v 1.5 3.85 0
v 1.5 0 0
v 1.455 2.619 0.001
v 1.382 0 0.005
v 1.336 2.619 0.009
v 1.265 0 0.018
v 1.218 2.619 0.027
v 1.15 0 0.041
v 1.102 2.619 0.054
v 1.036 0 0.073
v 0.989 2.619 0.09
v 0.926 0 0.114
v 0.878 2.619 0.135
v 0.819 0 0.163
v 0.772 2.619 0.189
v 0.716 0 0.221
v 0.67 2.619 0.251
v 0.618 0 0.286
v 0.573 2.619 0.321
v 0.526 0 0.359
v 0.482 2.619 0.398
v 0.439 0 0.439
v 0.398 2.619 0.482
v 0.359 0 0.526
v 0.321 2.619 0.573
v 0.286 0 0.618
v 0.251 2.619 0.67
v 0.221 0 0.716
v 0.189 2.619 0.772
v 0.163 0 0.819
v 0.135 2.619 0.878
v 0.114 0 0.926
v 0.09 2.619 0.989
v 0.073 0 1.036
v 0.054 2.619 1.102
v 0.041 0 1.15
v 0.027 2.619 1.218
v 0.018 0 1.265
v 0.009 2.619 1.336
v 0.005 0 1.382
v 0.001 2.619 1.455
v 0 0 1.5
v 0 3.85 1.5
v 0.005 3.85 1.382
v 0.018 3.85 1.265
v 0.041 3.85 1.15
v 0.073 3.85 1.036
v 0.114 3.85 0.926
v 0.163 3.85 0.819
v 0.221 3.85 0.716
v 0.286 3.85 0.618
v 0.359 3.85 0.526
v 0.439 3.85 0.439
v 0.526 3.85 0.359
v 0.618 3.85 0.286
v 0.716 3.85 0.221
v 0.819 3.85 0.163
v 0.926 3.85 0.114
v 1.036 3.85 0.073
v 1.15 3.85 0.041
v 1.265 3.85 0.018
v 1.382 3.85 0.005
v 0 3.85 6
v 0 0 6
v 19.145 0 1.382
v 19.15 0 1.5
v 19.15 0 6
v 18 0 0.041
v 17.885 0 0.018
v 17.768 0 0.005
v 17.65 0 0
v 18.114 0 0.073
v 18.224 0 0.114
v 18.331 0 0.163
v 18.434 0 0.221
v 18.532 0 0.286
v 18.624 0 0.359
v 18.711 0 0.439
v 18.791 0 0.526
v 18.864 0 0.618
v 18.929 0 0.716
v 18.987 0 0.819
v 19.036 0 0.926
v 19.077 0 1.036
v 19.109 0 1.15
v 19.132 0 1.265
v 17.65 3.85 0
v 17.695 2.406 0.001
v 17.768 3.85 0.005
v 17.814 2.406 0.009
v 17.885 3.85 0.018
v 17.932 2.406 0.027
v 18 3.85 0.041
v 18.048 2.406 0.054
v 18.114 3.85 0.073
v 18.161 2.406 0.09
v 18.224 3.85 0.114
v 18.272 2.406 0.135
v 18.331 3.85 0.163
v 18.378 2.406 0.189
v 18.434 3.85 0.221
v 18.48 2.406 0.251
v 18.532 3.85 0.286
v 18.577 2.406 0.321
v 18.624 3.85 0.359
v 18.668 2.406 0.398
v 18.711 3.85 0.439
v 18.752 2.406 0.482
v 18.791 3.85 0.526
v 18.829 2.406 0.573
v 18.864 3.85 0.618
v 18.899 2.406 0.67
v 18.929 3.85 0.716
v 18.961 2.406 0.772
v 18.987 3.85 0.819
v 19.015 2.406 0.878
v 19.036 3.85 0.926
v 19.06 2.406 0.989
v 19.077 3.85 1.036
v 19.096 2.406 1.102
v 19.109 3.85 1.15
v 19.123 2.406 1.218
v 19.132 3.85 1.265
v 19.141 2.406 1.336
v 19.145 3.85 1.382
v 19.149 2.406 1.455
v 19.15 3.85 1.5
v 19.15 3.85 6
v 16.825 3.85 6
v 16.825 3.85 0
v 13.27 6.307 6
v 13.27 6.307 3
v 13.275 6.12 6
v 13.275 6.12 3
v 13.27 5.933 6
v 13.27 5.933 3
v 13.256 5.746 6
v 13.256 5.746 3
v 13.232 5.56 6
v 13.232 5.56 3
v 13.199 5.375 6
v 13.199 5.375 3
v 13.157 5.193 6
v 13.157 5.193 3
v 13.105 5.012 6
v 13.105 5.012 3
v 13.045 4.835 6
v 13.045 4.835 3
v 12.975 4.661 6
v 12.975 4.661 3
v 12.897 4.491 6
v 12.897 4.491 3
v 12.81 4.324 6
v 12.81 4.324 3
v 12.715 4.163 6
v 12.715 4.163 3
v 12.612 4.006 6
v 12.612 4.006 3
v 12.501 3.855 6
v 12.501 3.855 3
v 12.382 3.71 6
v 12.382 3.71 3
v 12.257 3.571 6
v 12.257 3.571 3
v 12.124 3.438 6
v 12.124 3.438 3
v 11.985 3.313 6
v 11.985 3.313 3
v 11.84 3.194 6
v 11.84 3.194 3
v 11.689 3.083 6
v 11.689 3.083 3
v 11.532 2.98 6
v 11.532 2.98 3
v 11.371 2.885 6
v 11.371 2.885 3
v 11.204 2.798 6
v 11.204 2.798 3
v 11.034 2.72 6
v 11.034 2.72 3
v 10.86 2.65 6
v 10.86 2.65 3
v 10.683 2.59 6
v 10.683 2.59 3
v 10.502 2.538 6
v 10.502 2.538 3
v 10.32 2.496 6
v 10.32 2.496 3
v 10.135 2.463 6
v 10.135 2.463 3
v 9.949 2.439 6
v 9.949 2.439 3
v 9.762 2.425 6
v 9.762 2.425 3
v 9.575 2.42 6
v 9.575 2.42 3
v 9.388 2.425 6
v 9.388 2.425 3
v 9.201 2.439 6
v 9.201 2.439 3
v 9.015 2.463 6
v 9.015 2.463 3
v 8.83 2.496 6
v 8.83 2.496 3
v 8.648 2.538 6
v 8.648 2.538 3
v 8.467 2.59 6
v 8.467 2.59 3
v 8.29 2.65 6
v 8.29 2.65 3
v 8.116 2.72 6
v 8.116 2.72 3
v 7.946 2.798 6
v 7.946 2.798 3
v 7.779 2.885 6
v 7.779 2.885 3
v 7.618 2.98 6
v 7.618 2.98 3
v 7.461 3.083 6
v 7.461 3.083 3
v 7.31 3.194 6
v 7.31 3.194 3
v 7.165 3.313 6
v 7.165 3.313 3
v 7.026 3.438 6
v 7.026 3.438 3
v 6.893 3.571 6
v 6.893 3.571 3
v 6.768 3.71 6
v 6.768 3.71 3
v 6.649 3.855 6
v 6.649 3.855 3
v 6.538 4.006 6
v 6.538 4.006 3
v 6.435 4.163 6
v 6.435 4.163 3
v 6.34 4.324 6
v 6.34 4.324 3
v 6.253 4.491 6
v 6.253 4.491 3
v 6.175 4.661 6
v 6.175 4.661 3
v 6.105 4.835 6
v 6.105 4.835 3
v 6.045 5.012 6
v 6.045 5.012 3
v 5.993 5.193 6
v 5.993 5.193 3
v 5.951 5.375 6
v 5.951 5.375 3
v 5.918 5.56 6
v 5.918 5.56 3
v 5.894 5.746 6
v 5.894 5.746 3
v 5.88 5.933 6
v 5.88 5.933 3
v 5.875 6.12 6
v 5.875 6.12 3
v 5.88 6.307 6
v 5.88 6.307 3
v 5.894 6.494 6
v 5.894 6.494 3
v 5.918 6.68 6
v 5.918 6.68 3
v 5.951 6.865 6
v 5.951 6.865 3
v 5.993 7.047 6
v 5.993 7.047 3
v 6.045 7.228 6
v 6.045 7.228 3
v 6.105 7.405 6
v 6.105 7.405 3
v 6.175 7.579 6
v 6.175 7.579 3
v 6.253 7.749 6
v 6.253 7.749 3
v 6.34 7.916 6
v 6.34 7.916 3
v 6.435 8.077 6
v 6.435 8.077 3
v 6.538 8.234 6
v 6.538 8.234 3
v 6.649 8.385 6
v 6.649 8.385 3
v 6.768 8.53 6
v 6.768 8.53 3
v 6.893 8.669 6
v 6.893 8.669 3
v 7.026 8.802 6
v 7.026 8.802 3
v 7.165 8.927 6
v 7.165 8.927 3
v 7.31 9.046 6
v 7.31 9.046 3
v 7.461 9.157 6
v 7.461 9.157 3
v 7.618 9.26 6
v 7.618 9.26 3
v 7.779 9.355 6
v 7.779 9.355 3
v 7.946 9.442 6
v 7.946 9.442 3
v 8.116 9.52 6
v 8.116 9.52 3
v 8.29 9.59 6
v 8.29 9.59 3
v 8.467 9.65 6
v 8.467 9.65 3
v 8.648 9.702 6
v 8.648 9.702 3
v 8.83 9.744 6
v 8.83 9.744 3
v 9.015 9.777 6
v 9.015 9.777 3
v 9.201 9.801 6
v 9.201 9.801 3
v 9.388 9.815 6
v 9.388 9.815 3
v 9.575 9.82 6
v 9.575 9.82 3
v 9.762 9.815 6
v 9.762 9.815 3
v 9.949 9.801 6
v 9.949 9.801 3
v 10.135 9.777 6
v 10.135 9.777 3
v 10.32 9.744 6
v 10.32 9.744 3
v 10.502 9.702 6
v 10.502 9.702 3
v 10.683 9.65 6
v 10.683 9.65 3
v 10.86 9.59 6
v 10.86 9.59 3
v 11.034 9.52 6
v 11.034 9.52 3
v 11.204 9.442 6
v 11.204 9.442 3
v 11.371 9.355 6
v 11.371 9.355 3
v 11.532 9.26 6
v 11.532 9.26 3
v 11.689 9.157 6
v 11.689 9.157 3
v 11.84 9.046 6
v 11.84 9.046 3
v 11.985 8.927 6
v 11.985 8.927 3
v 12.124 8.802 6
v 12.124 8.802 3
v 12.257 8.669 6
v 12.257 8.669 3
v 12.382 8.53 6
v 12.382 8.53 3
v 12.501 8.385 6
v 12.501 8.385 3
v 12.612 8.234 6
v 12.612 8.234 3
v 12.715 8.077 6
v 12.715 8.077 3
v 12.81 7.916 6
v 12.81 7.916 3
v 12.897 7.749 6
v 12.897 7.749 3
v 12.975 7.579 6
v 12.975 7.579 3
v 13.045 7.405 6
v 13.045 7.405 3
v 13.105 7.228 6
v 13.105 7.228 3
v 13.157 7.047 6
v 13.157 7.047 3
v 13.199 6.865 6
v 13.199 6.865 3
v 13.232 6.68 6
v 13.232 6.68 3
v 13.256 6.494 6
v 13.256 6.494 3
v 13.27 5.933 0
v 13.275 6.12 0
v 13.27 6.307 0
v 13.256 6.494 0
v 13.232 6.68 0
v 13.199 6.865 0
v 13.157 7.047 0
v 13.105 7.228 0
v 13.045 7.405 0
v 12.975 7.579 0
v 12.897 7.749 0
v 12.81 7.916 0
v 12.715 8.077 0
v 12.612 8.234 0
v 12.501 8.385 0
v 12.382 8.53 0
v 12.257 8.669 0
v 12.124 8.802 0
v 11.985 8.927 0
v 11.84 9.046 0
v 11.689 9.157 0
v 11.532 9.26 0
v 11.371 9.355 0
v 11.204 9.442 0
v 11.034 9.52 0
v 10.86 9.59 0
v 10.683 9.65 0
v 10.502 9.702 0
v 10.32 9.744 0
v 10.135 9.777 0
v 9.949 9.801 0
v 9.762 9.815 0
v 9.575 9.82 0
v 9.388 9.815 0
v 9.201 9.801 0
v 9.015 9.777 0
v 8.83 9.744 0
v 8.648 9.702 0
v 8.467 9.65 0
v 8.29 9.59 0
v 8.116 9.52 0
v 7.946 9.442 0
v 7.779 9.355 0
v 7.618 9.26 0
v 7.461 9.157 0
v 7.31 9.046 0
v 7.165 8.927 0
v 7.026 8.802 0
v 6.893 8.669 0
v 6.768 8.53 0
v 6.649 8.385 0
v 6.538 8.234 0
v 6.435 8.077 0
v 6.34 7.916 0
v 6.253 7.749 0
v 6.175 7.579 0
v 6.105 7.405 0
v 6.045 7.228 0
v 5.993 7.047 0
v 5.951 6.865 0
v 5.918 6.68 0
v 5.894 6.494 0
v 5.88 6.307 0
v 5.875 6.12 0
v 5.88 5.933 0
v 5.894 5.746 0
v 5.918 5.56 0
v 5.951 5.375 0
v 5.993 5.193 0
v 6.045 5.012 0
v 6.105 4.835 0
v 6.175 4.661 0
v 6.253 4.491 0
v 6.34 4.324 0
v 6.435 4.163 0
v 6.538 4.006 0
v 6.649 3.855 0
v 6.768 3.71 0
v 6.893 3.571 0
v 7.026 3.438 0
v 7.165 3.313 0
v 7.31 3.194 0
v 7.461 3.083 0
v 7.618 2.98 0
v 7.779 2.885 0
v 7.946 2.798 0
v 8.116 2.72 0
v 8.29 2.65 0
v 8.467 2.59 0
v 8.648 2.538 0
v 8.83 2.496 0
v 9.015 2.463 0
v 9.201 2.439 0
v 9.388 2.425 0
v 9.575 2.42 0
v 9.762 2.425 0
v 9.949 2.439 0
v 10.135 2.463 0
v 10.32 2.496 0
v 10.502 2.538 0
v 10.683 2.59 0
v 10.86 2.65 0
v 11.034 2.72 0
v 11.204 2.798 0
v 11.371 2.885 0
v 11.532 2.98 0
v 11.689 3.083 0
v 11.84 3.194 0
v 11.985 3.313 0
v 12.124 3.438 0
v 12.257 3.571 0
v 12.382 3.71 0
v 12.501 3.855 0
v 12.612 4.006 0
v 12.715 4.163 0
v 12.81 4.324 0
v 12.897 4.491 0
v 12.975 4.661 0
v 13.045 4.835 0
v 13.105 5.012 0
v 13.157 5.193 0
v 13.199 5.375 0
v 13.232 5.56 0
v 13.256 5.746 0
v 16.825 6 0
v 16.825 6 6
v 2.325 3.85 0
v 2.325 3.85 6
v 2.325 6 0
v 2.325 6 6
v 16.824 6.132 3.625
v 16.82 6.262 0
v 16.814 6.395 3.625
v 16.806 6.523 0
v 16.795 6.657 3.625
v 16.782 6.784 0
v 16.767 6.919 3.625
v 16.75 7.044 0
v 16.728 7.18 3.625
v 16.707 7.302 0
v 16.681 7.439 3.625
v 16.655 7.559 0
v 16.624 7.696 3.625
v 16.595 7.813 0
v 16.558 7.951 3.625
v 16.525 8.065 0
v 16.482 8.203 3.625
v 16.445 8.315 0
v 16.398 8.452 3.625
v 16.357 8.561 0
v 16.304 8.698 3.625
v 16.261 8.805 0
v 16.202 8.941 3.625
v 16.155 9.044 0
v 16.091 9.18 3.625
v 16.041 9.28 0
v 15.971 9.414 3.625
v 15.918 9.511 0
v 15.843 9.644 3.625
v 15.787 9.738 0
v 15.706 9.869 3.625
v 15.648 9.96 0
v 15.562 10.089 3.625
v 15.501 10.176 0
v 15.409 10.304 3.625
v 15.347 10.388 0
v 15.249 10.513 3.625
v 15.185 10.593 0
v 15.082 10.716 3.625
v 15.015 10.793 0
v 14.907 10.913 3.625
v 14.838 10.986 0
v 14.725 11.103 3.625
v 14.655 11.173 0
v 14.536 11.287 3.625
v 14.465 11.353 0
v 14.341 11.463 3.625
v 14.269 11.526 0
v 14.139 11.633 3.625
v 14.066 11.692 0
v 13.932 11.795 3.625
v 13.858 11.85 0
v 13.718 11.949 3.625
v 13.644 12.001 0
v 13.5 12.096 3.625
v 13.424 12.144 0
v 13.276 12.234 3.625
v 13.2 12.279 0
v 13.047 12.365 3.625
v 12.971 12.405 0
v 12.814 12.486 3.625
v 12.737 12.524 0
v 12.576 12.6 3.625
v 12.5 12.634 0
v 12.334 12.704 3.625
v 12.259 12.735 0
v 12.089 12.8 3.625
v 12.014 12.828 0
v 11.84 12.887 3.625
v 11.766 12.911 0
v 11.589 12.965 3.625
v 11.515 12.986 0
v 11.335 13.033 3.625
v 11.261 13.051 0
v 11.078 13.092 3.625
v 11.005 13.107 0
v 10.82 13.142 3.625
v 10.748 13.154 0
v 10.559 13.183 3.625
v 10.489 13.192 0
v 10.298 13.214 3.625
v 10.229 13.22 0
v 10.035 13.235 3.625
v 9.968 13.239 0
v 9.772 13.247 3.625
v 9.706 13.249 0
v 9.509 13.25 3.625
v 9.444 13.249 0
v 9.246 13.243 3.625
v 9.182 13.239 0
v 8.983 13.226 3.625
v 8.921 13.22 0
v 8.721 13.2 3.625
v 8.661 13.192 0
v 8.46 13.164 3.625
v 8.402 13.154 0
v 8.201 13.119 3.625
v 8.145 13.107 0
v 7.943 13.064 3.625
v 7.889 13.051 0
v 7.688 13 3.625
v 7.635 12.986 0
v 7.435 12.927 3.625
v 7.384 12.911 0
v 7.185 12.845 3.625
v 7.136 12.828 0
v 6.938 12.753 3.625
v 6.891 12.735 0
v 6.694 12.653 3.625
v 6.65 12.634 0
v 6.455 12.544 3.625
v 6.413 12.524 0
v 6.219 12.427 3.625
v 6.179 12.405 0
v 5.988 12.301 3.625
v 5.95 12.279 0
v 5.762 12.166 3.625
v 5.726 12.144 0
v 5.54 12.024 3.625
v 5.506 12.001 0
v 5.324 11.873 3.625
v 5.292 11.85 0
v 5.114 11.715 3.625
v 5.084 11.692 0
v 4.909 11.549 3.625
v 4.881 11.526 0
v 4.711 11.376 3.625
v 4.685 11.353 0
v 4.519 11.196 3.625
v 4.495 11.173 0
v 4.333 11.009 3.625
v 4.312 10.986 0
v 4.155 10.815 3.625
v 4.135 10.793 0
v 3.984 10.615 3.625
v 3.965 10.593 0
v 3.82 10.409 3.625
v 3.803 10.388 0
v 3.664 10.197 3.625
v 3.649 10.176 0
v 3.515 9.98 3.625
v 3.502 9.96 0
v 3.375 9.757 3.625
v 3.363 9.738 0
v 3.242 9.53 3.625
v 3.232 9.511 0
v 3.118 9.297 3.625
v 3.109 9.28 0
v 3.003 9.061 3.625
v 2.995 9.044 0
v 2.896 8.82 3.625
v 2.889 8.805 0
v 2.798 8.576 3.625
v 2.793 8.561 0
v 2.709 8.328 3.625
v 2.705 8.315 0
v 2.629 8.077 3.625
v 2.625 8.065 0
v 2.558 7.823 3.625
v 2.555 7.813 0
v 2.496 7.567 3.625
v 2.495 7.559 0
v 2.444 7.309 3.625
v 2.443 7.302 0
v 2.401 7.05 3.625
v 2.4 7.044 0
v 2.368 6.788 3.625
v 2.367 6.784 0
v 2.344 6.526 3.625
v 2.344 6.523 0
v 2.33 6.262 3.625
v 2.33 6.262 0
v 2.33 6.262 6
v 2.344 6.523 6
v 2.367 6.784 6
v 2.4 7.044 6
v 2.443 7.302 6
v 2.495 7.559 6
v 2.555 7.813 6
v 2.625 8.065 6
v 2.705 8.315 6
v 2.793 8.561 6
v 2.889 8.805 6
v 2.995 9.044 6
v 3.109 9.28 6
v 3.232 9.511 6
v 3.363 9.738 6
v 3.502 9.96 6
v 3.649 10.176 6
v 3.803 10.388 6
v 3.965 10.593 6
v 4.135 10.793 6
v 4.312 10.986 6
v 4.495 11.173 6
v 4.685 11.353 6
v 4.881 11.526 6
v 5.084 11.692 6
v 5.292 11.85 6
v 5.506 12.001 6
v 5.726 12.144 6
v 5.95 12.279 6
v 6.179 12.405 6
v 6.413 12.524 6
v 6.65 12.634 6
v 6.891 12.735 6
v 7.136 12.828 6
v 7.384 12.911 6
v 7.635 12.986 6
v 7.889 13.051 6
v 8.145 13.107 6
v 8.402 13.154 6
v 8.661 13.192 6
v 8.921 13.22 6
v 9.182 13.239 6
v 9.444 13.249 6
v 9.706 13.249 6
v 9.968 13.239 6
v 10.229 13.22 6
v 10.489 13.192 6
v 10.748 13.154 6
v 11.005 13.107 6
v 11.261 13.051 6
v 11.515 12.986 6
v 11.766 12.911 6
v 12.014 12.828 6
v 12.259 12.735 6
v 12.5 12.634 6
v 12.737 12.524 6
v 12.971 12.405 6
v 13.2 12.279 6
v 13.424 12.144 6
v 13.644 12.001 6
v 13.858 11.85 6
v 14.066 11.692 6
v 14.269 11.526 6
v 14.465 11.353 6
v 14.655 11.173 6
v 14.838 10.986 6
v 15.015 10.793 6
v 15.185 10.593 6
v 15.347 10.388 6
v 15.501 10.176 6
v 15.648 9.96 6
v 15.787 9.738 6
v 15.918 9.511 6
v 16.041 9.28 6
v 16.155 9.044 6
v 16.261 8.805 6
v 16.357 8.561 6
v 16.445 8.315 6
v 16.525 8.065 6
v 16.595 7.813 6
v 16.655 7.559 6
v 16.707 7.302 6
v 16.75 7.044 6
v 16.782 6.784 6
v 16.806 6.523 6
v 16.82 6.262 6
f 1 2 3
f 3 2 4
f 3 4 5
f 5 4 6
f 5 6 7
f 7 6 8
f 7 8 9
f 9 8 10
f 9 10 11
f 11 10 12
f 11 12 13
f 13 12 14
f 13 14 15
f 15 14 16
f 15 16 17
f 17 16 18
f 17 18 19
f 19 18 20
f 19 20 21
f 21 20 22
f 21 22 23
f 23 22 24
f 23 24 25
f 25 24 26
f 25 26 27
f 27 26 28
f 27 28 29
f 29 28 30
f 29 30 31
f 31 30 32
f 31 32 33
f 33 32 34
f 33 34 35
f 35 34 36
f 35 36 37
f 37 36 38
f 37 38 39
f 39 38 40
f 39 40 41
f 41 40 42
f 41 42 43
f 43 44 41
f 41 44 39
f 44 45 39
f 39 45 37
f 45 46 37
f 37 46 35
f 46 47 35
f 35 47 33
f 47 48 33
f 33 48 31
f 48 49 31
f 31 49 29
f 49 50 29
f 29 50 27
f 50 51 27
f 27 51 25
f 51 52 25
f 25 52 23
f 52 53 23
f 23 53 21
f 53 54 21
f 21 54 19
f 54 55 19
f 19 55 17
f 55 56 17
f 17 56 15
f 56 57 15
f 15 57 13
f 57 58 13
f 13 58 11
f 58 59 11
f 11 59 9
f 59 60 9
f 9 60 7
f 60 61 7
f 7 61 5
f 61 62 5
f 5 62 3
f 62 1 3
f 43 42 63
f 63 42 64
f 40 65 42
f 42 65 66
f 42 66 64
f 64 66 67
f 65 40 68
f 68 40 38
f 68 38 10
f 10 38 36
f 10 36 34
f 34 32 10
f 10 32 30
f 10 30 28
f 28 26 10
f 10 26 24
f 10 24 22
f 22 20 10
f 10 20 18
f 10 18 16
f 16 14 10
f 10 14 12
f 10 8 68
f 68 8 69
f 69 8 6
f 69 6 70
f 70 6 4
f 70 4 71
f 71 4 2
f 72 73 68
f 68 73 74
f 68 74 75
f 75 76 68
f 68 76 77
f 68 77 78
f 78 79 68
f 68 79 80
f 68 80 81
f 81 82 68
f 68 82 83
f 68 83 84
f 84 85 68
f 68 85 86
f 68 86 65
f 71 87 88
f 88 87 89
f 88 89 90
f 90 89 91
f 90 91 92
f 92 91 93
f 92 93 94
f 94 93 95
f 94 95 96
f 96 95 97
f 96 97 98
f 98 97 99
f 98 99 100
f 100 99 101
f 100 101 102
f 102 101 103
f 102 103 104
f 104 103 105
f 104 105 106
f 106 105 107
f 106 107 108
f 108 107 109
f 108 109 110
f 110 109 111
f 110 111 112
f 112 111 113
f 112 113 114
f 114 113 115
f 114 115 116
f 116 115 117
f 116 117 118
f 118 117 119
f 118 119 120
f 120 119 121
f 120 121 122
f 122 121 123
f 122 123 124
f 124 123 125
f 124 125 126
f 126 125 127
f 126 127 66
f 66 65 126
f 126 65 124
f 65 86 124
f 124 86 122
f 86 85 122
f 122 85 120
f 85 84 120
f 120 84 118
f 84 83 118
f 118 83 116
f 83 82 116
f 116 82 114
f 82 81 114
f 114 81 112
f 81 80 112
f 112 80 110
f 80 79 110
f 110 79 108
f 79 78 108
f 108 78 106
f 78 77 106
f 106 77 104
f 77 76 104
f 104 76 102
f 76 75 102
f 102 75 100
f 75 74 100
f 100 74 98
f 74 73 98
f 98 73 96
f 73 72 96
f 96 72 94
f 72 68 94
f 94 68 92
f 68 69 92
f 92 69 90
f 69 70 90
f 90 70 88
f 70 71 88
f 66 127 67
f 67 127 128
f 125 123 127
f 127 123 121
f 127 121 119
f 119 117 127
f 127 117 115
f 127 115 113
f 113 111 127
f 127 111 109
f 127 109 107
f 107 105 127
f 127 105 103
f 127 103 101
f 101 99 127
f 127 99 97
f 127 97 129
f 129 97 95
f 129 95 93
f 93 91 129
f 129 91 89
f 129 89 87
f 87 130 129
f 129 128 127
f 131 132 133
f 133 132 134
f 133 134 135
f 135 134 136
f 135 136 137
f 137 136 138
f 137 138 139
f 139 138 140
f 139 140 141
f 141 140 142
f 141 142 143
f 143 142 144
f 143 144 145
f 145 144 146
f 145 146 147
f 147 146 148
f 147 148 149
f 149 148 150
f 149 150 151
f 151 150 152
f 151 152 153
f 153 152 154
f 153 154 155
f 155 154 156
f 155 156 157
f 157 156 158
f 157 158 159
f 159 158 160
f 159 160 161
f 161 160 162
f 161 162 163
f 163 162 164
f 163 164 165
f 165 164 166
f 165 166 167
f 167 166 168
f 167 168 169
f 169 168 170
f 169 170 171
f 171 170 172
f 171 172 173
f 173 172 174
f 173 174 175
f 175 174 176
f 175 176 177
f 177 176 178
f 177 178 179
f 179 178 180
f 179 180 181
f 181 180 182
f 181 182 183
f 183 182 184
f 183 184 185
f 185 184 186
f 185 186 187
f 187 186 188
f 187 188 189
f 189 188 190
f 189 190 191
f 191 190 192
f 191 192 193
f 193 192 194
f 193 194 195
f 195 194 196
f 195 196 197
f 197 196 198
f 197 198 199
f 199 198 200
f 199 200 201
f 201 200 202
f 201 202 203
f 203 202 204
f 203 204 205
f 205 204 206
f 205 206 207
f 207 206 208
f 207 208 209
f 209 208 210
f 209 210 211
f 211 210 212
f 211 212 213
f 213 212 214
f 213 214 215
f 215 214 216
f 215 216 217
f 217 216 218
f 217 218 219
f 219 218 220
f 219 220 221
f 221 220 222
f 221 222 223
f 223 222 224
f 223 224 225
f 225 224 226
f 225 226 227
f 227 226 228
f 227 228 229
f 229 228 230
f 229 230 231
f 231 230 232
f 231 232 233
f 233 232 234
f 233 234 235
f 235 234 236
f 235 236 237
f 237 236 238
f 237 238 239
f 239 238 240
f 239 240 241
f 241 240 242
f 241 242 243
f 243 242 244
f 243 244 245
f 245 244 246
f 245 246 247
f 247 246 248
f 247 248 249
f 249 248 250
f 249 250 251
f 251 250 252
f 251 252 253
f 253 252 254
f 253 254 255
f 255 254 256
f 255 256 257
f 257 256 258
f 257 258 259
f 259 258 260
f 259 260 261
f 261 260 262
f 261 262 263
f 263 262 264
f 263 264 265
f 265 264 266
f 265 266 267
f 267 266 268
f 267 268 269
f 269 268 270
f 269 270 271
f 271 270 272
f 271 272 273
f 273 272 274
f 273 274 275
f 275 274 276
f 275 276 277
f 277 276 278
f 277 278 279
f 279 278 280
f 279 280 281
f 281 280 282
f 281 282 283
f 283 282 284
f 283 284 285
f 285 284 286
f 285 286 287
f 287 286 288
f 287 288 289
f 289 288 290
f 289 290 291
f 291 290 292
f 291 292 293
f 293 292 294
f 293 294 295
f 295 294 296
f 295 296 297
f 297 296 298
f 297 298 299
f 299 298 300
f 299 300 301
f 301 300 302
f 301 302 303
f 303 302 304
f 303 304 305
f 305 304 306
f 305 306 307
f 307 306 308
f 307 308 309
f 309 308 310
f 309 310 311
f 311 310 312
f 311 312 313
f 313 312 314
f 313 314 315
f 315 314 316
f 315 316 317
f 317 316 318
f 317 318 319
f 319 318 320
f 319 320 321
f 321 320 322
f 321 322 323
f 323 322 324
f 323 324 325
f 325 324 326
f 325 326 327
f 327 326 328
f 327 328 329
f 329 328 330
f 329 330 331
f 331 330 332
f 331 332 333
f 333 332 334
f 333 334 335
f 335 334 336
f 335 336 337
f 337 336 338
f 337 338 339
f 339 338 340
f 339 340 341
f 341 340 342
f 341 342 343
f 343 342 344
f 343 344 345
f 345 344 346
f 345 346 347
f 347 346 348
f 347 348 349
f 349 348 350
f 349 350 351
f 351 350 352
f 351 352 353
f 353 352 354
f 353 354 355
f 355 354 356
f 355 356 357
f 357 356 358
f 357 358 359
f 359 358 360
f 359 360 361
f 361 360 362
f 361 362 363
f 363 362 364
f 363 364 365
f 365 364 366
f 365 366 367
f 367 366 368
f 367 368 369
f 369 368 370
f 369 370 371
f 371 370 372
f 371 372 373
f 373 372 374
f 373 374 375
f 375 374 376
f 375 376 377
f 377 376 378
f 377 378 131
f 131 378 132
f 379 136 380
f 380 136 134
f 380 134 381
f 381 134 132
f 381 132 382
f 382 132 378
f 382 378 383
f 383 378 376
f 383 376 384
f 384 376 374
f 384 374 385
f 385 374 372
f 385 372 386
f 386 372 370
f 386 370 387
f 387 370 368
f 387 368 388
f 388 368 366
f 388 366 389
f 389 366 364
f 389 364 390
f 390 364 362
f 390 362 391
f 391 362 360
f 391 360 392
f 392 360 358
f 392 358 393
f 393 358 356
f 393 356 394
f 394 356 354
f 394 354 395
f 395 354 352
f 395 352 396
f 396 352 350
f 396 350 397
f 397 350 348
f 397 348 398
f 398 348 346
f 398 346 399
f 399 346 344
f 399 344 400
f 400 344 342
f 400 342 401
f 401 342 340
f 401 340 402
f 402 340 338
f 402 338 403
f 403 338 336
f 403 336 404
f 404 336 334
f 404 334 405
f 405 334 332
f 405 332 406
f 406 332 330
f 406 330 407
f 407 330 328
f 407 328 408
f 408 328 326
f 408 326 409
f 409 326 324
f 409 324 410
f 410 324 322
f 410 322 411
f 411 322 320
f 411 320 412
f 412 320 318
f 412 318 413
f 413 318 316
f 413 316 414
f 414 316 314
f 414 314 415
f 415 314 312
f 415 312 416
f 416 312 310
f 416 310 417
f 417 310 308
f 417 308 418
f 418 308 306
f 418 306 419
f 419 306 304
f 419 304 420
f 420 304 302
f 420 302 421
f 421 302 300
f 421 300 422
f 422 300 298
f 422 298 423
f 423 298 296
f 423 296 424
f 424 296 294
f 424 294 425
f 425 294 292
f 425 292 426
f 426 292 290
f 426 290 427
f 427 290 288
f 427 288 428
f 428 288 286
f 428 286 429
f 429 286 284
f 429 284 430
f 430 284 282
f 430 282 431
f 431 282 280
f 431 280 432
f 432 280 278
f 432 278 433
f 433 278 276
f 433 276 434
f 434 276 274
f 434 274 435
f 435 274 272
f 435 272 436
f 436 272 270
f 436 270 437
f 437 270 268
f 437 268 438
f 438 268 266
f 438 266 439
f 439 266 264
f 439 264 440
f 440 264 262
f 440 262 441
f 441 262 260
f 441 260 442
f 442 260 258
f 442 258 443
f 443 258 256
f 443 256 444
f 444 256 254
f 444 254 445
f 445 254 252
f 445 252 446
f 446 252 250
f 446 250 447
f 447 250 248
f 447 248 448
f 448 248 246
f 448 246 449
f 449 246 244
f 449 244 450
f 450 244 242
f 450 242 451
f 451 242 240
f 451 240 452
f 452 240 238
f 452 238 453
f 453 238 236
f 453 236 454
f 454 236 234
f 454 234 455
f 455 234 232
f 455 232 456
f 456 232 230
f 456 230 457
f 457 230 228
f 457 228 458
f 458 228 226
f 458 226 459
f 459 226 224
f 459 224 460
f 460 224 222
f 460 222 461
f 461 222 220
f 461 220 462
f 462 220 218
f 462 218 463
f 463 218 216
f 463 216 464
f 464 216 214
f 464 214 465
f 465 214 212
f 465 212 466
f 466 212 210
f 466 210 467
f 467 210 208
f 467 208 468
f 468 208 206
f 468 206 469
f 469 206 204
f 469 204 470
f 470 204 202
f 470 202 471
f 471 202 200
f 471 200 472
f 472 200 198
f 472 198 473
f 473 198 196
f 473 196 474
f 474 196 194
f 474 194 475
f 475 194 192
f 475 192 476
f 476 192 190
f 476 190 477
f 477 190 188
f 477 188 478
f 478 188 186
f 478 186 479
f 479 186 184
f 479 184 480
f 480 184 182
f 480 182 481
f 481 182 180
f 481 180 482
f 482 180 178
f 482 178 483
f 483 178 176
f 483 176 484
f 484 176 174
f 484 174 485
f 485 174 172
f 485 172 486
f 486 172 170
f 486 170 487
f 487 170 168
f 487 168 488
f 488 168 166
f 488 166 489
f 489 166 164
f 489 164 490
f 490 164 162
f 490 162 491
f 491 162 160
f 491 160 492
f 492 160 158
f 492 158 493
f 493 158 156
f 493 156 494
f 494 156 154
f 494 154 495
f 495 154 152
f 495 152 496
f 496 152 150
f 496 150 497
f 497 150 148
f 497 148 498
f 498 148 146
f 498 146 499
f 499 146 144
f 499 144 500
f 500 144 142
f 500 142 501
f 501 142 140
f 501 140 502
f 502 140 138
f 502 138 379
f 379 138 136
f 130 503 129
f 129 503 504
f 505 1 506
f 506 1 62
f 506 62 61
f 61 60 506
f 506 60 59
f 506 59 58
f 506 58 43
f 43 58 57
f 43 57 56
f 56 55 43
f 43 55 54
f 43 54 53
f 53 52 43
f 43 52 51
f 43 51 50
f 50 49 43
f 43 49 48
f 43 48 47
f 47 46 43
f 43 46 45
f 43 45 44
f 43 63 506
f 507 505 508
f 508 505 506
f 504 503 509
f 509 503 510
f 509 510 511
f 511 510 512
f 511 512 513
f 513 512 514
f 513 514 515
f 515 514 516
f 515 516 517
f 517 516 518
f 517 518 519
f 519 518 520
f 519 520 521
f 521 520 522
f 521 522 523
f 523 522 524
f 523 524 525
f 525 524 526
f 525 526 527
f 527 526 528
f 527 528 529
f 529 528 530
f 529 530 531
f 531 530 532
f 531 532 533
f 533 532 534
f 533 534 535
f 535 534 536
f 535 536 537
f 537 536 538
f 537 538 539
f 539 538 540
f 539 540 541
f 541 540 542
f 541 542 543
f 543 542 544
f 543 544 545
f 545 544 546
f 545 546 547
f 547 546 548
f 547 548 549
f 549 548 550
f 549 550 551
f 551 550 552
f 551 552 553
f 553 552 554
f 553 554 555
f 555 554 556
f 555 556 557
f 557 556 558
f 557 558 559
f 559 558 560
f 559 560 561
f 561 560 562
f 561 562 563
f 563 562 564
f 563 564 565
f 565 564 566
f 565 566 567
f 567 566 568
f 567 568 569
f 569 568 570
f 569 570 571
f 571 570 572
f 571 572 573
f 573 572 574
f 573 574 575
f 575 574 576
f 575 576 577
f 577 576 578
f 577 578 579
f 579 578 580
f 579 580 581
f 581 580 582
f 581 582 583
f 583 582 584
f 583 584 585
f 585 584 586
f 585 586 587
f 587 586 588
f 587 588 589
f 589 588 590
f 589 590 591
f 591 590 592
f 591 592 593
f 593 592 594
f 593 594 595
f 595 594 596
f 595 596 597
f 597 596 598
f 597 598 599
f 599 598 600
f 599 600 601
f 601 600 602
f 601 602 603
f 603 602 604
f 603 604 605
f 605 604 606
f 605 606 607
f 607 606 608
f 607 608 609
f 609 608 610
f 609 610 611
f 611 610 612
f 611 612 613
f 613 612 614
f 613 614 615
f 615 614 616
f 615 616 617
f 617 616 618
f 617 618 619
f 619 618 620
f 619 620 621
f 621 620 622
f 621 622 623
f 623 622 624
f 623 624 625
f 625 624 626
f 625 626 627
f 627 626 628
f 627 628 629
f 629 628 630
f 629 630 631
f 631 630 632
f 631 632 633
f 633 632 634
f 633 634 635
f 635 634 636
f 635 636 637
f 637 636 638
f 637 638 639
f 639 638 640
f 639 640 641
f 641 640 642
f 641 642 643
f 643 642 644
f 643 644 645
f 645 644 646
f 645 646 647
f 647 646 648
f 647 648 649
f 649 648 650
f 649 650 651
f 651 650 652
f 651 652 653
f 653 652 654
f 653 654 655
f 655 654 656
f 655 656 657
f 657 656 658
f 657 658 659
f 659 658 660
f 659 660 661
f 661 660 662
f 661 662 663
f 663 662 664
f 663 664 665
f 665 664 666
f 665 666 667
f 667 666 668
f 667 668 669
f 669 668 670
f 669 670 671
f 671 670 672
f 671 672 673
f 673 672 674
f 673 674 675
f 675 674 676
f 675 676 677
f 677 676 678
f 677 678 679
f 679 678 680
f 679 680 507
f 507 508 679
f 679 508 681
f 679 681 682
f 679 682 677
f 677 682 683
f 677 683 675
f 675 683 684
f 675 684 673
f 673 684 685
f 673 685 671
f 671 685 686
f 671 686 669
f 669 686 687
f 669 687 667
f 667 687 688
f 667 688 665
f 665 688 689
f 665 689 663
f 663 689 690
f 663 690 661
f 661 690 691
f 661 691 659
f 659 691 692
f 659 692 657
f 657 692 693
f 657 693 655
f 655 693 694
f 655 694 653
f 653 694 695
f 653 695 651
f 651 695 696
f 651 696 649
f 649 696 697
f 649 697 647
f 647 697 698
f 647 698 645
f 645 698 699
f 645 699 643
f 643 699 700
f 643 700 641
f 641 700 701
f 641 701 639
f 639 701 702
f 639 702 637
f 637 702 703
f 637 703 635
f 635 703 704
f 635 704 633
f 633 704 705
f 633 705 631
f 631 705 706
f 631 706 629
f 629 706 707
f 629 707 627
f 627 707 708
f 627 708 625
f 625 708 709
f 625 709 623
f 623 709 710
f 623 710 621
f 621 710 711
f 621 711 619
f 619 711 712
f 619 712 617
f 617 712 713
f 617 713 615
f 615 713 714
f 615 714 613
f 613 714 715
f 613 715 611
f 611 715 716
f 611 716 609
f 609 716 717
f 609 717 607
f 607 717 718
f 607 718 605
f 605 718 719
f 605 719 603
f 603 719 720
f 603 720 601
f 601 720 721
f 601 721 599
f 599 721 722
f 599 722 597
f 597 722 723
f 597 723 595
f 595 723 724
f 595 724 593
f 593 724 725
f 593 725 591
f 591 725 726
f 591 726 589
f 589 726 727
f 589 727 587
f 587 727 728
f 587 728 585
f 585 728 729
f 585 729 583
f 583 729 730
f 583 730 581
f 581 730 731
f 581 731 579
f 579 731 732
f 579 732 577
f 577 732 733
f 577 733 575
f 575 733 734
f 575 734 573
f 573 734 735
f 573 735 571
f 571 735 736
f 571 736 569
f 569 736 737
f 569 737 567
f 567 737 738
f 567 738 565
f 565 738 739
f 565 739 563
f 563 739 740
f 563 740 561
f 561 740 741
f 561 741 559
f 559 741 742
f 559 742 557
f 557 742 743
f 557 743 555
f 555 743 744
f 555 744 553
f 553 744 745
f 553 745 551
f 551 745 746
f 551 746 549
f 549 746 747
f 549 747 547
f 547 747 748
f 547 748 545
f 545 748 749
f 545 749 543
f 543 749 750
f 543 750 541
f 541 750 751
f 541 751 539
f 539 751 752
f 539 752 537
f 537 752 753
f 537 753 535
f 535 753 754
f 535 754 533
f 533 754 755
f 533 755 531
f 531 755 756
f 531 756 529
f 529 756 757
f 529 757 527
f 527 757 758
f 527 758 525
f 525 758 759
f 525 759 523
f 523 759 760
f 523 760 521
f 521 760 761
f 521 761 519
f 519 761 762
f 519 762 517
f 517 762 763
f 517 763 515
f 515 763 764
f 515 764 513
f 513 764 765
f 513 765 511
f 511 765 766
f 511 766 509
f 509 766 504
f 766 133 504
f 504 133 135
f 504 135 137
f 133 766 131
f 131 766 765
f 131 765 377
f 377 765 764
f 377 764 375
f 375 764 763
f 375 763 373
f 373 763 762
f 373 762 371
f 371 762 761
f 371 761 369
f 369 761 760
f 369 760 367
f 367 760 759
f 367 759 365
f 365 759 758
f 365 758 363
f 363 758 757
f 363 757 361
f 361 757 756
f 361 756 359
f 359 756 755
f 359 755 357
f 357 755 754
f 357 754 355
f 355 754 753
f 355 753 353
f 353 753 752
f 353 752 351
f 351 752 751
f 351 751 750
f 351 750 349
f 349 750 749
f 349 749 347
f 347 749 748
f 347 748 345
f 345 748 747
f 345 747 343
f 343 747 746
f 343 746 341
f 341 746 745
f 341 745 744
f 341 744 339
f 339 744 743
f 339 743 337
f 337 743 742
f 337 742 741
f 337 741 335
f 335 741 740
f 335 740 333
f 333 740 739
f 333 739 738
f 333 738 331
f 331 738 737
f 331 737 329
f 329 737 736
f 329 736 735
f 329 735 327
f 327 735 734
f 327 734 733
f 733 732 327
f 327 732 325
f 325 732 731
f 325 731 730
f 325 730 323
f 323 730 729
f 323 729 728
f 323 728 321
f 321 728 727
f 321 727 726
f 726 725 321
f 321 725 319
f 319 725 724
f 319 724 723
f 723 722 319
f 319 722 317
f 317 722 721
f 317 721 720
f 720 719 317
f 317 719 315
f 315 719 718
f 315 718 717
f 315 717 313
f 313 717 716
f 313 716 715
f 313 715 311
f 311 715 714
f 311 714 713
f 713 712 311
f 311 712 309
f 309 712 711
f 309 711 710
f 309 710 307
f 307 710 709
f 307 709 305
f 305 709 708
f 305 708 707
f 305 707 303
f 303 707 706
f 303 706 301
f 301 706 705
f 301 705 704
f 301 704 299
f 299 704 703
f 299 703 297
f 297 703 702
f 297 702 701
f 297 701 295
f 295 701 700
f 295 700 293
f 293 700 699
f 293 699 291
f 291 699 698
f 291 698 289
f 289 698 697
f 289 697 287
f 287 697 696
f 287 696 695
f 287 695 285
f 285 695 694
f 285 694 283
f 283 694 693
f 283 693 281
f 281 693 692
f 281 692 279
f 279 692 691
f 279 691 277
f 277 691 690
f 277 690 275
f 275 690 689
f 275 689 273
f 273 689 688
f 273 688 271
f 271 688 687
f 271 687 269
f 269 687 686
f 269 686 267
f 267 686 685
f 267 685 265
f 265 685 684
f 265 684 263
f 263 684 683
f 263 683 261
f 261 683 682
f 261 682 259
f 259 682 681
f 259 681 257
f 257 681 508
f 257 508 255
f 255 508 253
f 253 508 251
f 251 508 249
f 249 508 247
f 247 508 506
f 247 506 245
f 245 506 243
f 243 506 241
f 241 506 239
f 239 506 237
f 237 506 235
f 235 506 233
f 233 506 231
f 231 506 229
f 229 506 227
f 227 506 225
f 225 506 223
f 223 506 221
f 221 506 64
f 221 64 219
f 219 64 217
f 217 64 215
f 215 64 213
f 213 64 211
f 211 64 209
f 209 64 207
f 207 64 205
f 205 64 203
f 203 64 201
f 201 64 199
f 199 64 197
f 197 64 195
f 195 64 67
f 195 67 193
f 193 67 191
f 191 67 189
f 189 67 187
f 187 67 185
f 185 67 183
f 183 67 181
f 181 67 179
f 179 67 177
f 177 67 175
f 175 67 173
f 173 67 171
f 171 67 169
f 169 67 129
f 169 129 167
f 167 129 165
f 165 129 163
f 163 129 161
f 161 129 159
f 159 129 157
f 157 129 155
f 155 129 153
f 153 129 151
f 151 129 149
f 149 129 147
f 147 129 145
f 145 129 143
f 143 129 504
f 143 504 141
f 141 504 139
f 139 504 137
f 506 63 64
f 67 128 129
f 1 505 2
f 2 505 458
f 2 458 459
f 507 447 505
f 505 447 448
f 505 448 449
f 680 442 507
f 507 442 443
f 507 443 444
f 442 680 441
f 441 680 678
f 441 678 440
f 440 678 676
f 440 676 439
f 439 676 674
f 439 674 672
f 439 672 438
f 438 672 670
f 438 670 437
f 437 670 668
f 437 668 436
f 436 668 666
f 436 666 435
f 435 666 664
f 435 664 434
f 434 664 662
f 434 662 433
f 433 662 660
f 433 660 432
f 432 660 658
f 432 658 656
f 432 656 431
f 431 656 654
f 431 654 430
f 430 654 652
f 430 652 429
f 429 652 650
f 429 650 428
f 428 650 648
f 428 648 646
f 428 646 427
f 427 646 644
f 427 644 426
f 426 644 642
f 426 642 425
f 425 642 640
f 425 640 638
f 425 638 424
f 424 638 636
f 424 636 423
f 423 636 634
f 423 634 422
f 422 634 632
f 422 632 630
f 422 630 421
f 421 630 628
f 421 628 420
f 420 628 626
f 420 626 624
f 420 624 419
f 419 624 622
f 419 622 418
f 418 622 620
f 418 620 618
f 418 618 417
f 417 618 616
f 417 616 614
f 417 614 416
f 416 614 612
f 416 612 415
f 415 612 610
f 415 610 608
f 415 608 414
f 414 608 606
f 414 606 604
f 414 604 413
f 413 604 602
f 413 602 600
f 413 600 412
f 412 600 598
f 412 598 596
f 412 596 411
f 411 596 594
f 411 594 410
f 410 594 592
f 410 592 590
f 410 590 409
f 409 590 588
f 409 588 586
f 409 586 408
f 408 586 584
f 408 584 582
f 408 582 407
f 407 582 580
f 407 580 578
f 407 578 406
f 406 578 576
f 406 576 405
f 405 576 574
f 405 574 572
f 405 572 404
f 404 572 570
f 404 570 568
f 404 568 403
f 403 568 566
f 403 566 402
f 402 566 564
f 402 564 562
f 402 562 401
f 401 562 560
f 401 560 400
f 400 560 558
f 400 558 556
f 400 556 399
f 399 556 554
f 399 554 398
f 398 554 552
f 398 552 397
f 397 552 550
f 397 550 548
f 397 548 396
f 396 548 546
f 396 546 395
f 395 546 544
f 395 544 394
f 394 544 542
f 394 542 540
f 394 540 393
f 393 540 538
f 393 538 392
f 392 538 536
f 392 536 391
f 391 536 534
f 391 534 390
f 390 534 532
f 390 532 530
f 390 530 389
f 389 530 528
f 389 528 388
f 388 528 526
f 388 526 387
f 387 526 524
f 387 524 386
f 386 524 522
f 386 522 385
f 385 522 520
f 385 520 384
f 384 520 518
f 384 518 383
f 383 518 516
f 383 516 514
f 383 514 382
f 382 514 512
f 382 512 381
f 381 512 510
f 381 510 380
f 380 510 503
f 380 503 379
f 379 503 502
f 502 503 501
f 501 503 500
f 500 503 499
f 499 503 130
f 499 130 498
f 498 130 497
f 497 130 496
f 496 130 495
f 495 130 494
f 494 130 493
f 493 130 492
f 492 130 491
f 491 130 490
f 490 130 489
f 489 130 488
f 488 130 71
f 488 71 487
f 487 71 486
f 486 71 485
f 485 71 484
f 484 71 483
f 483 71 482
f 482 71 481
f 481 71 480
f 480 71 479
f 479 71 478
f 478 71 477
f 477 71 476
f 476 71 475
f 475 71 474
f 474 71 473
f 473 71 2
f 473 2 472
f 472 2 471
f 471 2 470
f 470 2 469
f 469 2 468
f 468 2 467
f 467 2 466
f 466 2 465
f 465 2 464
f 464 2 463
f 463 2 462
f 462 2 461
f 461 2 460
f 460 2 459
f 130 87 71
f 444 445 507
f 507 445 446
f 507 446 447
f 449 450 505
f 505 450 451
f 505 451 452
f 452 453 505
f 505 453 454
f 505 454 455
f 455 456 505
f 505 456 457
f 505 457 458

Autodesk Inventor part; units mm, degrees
ref_plane "YZ Plane" through (0, 0, 0) normal (1, 0, 0) x (0, 1, 0)
ref_plane "XZ Plane" through (0, 0, 0) normal (0, 1, 0) x (-1, 0, 0)
ref_plane "XY Plane" through (0, 0, 0) normal (0, 0, 1) x (1, 0, 0)
sketch "Sketch1" plane through (0, 0, 0) normal (0, 0, 1) x (1, 0, 0)
  line L0 (0, 0) -> (0, 3.85)
  line L1 (0, 0) -> (19.15, 0)
  line L2 (19.15, 0) -> (19.15, 3.85)
  line L3 (0, 3.85) -> (2.325, 3.85)
  line L4 (2.325, 3.85) -> (2.325, 6)
  line L5 (19.15, 3.85) -> (16.825, 3.85)
  line L6 (16.825, 3.85) -> (16.825, 6)
  arc A0 (16.825, 6) -> (2.325, 6) centre (9.575, 6) ccw
  circle A1 centre (9.575, 6.12) radius 3.7
  point P0 (9.575, 13.25)
  dimension "d0" = 19.15
  dimension "d1" = 3.85
  dimension "d2" = 3.85
  dimension "d3" = 9.575
  dimension "d4" = 13.25
  dimension "d5" = 7.25
  dimension "d6" = 7.25
  dimension "d7" = 7.25
  dimension "d8" = 7.25
  dimension "d9" = 9.575
  dimension "d10" = 7.4
  dimension "d11" = 7.13
extrude "Extrusion1" add sketch "Sketch1" along normal blind 6
fillet "Fillet1" radius 1.5 2 edges at (19.15, 1.925, 0) (0, 1.925, 0)
equation "\"d2\" = d1"
equation "\"d3\" = 0.5 * d0"
equation "\"d6\" = d5"
equation "\"d7\" = d5"
equation "\"d8\" = d5"
equation "\"d9\" = d3"
properties part number "Recoil Spring Mount v1.0"
